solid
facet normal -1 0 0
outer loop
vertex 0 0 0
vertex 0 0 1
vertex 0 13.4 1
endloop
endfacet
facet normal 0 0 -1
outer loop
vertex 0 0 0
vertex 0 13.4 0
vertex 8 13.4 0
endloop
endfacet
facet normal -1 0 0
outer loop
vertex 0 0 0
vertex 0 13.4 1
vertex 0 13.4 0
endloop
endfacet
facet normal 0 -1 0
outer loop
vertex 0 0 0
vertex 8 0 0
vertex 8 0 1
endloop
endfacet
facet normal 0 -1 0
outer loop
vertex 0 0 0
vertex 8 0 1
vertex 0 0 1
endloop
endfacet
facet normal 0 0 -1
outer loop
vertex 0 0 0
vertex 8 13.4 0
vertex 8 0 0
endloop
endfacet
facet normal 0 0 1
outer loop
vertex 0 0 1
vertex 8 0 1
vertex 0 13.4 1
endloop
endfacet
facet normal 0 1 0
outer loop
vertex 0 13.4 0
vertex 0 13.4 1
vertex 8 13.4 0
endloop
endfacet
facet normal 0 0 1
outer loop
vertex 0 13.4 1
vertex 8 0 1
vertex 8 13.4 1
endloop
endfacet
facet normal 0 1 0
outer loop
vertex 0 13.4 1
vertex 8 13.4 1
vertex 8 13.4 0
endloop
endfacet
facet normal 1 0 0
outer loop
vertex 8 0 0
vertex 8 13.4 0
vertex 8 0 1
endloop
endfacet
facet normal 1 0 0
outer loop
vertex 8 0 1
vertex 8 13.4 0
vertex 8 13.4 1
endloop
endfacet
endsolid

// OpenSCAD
/* Warning, this is a very basic generator with a lot of approximation 
input data : [VSOP, QJX, 8x13.4mm, 28, , C, C04-00075C]
generated by com.zoubworld.electronics.cad.model3d.Basic
Date : Sun Feb 15 10:50:48 CET 2026
*/

//body
color("black")
translate([0,0,0])
cube([8.0,13.4,1.0], center=false);
